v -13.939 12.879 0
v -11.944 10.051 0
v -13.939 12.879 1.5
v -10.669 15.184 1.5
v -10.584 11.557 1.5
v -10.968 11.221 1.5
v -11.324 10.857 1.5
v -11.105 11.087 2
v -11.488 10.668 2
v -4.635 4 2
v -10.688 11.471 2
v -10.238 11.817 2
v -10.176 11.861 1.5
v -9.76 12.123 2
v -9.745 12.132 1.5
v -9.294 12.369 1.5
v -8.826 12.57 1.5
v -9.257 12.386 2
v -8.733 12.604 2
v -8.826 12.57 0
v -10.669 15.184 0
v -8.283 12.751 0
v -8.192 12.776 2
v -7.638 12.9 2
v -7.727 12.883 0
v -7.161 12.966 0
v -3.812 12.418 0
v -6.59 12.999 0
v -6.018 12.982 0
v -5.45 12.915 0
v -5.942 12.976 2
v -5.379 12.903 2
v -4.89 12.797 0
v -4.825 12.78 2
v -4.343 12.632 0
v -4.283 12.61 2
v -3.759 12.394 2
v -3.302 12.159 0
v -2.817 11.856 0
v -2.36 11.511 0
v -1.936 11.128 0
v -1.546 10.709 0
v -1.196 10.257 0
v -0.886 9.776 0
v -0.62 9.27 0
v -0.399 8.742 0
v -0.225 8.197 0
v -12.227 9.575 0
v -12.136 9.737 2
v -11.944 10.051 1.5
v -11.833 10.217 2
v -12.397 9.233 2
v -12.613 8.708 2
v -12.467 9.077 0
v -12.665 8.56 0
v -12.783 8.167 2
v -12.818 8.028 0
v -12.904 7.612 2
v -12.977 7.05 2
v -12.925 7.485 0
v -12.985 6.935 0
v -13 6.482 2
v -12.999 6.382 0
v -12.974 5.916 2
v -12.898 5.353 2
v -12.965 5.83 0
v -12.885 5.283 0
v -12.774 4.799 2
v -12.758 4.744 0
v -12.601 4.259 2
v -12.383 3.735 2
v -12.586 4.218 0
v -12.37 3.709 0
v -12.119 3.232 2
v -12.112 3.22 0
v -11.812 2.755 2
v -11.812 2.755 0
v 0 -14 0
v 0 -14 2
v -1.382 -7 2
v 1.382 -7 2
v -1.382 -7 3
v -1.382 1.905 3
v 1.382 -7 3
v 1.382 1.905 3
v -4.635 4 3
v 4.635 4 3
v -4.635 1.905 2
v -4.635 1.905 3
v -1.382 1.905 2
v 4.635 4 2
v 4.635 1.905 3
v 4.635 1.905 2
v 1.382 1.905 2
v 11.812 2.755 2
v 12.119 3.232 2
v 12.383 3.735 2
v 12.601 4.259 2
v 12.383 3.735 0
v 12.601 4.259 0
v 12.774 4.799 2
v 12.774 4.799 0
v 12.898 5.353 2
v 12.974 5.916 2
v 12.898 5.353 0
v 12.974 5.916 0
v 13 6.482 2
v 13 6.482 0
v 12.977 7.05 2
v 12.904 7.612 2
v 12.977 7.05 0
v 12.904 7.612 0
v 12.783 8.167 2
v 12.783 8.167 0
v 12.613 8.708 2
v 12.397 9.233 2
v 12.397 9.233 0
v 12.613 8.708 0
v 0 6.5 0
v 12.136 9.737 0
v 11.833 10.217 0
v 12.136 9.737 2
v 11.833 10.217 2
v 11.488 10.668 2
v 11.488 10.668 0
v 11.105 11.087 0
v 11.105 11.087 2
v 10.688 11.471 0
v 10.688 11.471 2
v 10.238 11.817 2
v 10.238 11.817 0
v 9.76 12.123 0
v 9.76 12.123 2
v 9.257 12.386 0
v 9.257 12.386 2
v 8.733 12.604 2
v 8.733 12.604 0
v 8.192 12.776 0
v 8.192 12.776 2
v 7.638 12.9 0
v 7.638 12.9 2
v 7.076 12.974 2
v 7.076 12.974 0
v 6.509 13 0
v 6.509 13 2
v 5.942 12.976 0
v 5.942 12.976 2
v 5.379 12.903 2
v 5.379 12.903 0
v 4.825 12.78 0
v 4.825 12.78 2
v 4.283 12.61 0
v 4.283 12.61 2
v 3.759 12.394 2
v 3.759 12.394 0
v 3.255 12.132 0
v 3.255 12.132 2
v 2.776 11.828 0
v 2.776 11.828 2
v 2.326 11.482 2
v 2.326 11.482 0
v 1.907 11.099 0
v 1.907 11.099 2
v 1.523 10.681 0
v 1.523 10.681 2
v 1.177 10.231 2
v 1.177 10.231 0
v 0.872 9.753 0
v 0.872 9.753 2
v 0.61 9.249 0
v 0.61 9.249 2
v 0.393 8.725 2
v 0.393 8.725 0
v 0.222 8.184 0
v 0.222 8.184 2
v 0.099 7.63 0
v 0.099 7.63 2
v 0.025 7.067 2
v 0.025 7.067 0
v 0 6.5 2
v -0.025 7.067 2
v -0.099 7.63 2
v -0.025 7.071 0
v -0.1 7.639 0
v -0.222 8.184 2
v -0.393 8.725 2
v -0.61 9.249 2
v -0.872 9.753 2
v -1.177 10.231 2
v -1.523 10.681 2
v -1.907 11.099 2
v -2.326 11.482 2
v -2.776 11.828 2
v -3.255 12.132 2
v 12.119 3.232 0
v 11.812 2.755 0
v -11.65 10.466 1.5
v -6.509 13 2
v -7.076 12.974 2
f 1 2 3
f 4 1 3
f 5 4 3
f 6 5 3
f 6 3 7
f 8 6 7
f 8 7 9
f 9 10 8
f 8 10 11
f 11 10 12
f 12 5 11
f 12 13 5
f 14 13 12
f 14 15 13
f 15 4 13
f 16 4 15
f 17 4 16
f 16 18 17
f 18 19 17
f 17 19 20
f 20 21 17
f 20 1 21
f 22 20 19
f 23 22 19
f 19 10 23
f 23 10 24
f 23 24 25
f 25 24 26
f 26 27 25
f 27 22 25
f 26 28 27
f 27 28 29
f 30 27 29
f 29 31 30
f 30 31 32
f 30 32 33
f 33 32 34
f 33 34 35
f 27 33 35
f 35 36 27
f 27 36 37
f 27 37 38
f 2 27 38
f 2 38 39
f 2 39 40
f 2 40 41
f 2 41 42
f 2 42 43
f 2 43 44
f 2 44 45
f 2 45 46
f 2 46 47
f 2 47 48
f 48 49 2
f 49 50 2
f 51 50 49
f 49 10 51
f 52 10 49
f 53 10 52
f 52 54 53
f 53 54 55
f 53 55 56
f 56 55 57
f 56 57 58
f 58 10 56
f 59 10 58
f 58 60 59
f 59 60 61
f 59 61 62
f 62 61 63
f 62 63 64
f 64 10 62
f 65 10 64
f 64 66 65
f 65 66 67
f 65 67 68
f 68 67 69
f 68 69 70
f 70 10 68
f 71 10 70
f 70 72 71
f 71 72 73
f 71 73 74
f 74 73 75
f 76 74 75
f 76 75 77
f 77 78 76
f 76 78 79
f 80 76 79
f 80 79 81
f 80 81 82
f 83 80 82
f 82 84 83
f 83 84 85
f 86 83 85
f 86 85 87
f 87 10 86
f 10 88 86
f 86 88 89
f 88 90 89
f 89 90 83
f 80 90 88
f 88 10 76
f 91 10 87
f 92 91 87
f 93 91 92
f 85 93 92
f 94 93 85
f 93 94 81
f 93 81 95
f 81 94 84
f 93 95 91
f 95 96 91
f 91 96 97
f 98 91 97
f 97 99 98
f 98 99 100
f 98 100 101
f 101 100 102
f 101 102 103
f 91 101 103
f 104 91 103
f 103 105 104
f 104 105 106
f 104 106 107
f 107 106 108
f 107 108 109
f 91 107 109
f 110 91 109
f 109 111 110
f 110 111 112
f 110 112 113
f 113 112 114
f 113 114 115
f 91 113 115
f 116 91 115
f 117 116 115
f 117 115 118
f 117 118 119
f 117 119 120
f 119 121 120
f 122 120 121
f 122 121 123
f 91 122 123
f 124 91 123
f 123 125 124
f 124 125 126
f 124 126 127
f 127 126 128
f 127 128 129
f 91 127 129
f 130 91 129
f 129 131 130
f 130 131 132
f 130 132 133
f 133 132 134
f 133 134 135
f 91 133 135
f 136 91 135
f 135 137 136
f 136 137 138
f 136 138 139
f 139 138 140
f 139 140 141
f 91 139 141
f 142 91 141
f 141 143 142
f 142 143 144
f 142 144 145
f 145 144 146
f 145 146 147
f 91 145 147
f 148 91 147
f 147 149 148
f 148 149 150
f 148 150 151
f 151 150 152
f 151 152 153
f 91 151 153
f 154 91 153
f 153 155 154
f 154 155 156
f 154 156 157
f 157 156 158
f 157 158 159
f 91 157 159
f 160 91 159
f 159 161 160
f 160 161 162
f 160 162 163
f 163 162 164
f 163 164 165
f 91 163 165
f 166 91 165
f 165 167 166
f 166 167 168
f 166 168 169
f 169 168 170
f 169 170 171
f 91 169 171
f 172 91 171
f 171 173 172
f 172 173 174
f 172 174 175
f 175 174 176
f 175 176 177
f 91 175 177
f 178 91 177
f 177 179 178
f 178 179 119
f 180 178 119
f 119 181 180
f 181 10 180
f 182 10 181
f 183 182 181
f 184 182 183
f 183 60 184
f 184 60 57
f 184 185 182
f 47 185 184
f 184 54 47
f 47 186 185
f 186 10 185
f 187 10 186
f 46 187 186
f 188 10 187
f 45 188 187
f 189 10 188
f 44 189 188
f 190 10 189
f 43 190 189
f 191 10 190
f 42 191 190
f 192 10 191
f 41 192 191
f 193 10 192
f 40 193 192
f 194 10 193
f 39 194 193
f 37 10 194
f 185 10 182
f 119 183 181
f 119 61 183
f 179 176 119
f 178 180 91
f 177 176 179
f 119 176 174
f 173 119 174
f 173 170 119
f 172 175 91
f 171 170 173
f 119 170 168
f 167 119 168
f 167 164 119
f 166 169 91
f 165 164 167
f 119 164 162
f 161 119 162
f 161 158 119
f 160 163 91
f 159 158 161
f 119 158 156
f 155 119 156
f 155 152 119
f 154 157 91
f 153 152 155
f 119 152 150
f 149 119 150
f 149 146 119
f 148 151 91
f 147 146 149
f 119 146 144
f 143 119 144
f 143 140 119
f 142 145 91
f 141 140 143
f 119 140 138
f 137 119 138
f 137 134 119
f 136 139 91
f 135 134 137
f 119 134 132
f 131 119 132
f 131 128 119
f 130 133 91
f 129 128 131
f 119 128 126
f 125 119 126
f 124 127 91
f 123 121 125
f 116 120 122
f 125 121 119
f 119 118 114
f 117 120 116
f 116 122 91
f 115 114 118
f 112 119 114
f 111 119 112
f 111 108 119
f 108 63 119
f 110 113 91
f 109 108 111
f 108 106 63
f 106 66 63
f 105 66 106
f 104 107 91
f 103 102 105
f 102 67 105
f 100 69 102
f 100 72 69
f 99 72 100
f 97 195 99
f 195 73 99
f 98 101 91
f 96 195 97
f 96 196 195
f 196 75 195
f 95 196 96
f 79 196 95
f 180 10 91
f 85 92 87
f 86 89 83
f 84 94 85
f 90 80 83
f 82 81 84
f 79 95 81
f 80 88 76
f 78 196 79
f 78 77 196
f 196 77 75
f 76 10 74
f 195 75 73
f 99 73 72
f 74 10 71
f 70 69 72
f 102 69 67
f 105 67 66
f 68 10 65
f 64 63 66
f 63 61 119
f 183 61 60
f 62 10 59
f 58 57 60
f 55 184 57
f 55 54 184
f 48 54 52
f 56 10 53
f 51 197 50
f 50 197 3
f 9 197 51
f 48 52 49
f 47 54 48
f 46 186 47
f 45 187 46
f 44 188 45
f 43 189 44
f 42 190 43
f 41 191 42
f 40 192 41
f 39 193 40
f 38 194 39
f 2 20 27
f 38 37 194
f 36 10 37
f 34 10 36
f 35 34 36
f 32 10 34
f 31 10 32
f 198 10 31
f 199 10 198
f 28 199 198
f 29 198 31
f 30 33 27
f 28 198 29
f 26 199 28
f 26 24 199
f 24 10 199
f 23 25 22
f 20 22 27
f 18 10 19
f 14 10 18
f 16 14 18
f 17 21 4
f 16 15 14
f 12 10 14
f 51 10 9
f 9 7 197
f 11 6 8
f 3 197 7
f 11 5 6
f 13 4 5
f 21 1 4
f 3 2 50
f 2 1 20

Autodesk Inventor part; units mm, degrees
ref_plane "YZ Plane" through (0, 0, 0) normal (1, 0, 0) x (0, 1, 0)
ref_plane "XZ Plane" through (0, 0, 0) normal (0, 1, 0) x (-1, 0, 0)
ref_plane "XY Plane" through (0, 0, 0) normal (0, 0, 1) x (1, 0, 0)
sketch "Sketch1" plane through (0, 0, 0) normal (0, 0, 1) x (1, 0, 0)
  line L0 (0, -14) -> (-11.8124, 2.7546)
  line L1 (0, -14) -> (11.8124, 2.7546)
  arc A0 (0, 6.5) -> (-11.8124, 2.7546) centre (-6.5, 6.5) ccw
  arc A1 (11.8124, 2.7546) -> (0, 6.5) centre (6.5, 6.5) ccw
  point P0 (0, 0)
extrude "Extrusion1" add sketch "Sketch1" along normal blind 2
sketch "Sketch6" plane through (0, 0, 0) normal (0, 0, -1) x (-1, 0, 0)
  line L0 (-11.8124, 2.7546) -> (0, -14) projected
  line L1 (11.8124, 2.7546) -> (0, -14) projected
  line L2 (0, -14) -> (0, -7)
  line L3 (-4.9352, -7) -> (4.9352, -7)
  line L4 (-1.3817, -7) -> (-1.3817, 1.9052)
  line L5 (-1.3817, 1.9052) -> (-4.6353, 1.9052)
  line L6 (-4.6353, 1.9052) -> (-4.6353, 4)
  line L7 (-4.6353, 4) -> (4.6353, 4)
  line L8 (4.6353, 4) -> (4.6353, 1.9052)
  line L9 (4.6353, 1.9052) -> (1.3817, 1.9052)
  line L10 (1.3817, 1.9052) -> (1.3817, -7)
  line L11 (1.3817, -7) -> (-1.3817, -7)
  point P0 (0, 0)
  dimension "d24" = 7
extrude "Extrusion5" add sketch "Sketch6" against normal blind 3 contours L4 L5 L6 L7 L8 L9 L10 L3
sketch "Sketch7" plane through (0, 0, 0) normal (0, 0, -1) x (-1, 0, 0)
  arc A0 (11.8124, 2.7546) -> (0, 6.5) centre (6.5, 6.5) ccw
  line L0 (10.6694, 15.1841) -> (8.8261, 12.5695)
  line L1 (13.9386, 12.8792) -> (10.6694, 15.1841)
  line L2 (11.9445, 10.0507) -> (13.9386, 12.8792)
  point P0 (0, 0)
extrude "Extrusion6" add sketch "Sketch7" against normal blind 1.5
properties part number "Gift - T"
